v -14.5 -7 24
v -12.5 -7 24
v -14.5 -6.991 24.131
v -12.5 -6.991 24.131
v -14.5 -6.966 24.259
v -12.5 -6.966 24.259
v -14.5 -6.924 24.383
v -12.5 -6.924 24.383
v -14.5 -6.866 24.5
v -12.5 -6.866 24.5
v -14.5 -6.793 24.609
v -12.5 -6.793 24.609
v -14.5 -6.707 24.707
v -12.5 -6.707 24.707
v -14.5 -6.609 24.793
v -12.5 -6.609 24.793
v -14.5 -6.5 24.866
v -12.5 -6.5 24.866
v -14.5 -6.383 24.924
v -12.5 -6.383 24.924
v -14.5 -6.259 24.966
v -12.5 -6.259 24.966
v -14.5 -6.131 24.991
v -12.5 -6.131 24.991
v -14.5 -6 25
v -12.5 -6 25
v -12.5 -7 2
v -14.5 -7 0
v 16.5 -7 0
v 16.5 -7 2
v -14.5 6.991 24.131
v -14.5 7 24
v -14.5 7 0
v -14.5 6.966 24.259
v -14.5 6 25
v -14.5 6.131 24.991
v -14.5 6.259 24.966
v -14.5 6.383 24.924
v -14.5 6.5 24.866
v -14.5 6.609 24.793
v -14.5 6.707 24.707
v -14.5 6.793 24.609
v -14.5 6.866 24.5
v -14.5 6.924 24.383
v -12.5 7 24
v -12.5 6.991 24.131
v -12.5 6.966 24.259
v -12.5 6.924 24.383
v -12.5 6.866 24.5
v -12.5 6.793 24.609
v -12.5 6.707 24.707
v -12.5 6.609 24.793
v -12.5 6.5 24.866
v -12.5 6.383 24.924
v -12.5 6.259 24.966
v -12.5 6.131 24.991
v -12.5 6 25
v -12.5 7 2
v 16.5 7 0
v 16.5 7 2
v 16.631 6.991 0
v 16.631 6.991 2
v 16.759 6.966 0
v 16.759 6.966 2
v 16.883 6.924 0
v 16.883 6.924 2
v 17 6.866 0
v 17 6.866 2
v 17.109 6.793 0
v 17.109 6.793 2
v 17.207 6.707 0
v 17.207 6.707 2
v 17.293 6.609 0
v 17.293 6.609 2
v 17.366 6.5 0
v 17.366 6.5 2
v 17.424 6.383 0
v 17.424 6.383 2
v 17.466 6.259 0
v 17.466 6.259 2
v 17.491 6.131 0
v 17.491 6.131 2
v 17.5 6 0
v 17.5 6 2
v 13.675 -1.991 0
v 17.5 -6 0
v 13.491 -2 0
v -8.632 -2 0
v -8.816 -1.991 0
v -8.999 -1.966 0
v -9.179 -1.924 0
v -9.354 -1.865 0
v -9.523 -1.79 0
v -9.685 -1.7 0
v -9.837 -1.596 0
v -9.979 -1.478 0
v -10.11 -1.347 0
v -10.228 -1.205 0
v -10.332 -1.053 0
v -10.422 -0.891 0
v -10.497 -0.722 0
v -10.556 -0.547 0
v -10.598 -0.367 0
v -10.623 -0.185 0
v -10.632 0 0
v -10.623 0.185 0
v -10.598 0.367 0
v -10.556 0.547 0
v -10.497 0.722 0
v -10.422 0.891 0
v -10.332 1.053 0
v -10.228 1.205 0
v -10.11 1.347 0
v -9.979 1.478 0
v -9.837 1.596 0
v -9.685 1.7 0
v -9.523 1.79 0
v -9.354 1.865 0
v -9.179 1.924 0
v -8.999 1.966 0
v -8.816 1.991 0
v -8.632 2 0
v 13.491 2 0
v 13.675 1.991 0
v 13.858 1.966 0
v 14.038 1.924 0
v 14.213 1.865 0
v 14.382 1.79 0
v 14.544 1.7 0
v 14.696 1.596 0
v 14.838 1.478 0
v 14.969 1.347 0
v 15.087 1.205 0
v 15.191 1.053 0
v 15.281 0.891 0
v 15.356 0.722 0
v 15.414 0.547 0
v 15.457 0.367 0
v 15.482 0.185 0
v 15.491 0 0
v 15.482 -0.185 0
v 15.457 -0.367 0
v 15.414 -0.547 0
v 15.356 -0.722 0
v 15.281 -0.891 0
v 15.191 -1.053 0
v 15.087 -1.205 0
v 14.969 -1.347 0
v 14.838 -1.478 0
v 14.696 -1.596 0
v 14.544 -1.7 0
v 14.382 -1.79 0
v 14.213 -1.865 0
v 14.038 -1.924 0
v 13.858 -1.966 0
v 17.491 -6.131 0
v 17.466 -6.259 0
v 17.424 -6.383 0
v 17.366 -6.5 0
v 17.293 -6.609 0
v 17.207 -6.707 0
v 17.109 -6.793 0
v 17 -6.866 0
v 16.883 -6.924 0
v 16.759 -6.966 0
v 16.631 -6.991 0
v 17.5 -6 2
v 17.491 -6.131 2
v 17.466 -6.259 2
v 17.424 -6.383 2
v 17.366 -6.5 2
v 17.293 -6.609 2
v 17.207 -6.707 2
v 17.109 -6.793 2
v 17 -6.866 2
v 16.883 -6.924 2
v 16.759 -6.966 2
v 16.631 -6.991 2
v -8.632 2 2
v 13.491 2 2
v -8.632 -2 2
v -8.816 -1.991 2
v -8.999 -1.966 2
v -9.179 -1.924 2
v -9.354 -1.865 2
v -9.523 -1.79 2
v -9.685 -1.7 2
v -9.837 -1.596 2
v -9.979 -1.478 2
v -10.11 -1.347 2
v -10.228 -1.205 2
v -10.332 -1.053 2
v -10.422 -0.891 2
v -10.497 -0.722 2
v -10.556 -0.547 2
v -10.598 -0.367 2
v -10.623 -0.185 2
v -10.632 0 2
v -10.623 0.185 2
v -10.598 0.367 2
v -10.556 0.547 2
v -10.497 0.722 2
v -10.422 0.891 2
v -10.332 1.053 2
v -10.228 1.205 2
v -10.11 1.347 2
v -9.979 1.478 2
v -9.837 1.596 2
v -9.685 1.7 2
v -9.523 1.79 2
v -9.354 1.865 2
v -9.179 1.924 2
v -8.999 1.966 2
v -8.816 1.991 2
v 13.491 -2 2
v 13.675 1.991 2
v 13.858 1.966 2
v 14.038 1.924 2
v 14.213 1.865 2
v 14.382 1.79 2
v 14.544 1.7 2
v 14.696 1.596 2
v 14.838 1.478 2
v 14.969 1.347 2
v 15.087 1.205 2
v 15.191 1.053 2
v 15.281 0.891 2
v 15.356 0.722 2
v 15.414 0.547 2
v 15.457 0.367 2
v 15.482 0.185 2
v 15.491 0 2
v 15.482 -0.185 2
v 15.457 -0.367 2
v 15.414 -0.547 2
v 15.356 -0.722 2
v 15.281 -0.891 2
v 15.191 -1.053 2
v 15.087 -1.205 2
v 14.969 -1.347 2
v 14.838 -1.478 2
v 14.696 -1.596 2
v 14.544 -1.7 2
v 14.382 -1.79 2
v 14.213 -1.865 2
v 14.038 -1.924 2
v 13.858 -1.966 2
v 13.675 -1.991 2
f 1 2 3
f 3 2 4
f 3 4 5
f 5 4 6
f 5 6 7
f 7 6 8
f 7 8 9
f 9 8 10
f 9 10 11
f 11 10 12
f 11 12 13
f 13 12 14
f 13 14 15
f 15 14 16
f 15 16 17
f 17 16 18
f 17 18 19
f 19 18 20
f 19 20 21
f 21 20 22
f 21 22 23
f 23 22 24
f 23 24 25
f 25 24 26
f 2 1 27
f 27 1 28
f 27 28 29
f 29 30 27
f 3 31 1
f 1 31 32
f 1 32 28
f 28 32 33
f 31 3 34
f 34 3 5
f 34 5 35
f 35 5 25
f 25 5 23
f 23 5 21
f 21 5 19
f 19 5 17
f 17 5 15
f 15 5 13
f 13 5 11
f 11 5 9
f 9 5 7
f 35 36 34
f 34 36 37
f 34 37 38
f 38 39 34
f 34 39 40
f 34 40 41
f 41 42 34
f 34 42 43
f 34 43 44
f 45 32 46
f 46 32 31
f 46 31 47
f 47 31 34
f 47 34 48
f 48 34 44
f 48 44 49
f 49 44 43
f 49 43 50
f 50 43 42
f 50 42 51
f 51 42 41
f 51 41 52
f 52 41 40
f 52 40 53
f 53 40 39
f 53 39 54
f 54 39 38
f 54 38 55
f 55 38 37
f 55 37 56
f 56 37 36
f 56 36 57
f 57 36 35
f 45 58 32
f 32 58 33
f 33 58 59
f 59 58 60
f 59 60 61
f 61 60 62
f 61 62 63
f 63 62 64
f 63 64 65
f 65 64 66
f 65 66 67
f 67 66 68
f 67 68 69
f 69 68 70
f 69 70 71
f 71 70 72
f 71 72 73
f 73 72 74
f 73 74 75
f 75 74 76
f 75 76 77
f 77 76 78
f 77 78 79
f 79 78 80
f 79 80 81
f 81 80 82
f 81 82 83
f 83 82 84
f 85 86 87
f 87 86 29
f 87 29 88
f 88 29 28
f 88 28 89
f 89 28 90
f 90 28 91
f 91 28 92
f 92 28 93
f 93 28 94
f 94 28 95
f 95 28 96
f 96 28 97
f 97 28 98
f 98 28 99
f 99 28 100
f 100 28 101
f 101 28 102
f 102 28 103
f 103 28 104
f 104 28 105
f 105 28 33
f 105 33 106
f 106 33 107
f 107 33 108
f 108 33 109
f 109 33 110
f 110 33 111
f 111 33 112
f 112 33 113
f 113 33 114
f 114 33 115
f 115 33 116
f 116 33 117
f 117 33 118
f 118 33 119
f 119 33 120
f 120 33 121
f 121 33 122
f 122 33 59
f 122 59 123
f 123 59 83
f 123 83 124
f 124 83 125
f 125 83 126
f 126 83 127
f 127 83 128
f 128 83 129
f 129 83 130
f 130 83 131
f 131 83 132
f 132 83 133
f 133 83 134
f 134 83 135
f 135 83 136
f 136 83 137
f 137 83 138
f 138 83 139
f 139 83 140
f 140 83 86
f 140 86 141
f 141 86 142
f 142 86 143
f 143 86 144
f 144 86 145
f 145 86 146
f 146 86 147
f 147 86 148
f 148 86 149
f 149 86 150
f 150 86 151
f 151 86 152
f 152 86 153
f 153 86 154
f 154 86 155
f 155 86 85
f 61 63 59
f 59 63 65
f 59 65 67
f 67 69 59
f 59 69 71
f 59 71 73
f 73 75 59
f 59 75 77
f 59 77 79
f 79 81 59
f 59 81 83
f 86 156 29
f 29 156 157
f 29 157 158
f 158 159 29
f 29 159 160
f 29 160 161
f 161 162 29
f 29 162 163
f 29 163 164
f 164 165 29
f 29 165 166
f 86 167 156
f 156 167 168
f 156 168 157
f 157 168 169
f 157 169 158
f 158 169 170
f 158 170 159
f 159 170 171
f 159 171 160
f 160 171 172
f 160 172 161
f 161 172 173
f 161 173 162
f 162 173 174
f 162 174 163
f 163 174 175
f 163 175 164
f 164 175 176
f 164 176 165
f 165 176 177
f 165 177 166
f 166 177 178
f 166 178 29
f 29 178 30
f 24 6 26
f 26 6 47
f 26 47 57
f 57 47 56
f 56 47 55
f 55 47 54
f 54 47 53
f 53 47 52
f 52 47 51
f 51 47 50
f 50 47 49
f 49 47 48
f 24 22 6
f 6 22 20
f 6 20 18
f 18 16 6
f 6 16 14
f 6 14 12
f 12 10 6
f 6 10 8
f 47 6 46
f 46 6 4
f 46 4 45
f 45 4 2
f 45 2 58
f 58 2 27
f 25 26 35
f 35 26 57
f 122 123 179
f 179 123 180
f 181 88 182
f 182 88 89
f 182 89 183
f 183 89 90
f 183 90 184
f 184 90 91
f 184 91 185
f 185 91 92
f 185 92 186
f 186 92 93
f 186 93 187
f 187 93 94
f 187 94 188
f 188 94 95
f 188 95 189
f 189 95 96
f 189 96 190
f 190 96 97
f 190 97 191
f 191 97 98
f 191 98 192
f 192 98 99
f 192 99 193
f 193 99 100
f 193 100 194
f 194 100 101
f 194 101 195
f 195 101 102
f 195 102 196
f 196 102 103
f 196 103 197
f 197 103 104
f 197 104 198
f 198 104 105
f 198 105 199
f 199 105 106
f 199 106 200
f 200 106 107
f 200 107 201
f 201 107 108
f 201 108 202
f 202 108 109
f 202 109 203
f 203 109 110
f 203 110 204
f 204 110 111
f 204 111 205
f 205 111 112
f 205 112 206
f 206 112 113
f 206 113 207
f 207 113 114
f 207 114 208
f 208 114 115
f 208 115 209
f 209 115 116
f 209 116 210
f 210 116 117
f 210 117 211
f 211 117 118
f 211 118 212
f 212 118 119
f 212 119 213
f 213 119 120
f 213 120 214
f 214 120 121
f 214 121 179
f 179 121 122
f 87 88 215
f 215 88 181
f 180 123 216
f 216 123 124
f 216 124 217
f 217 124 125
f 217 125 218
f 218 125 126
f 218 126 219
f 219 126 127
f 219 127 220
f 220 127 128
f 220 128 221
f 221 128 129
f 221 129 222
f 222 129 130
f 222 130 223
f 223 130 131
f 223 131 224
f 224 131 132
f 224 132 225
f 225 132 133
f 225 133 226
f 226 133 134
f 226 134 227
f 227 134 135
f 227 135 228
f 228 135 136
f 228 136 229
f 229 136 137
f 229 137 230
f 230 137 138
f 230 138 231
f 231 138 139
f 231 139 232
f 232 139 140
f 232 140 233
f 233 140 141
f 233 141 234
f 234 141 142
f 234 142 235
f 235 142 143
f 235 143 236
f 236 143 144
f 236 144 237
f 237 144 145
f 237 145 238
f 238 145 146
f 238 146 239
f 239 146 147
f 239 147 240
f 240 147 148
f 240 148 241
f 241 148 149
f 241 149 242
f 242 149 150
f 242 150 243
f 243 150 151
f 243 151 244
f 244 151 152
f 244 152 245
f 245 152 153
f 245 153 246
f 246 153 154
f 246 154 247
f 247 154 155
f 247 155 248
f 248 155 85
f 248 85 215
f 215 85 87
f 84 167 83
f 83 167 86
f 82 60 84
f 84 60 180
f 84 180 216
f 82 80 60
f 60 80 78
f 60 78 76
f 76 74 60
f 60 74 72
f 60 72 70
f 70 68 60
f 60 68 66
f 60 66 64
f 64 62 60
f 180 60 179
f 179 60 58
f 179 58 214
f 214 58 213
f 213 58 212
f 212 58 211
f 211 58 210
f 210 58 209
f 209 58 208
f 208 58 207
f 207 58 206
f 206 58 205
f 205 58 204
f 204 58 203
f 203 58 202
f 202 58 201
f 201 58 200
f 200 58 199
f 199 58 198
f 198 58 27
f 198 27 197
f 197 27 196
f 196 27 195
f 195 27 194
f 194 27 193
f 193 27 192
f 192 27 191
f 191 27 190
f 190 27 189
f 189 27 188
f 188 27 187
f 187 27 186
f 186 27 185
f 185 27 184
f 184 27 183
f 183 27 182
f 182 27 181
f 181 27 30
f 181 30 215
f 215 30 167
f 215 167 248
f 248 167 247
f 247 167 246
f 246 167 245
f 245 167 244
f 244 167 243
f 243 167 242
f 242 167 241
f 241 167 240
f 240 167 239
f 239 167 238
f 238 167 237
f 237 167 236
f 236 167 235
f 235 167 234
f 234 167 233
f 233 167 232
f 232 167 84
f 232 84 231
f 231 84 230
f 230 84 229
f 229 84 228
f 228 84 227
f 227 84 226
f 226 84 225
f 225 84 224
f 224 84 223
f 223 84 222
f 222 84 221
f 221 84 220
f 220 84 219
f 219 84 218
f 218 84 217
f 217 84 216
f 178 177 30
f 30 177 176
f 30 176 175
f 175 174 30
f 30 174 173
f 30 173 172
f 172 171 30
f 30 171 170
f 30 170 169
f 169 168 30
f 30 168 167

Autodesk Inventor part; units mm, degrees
ref_plane "YZ Plane" through (0, 0, 0) normal (1, 0, 0) x (0, 1, 0)
ref_plane "XZ Plane" through (0, 0, 0) normal (0, 1, 0) x (-1, 0, 0)
ref_plane "XY Plane" through (0, 0, 0) normal (0, 0, 1) x (1, 0, 0)
sketch "Sketch1" plane through (0, 0, 0) normal (0, 0, 1) x (1, 0, 0)
  line L0 (-14.5, -7) -> (17.5, -7)
  line L1 (17.5, -7) -> (17.5, 7)
  line L2 (17.5, 7) -> (-14.5, 7)
  line L3 (-14.5, 7) -> (-14.5, -7)
  line L4 (-14.5, -7) -> (17.5, 7) construction
  line L5 (17.5, -7) -> (-14.5, 7) construction
  line L6 (-14.5, 7) -> (-12.5, 7)
  line L7 (-12.5, 7) -> (-12.5, -7)
  line L8 (-12.5, -7) -> (-14.5, -7)
  line L9 (-14.5, -7) -> (-14.5, 7)
  line L10 (13.4907, 0) -> (-8.632, 0) construction
  line L11 (13.4907, 2) -> (-8.632, 2)
  line L12 (-8.632, -2) -> (13.4907, -2)
  arc A0 (13.4907, -2) -> (13.4907, 2) centre (13.4907, 0) ccw
  arc A1 (-8.632, 2) -> (-8.632, -2) centre (-8.632, 0) ccw
  point P0 (2.4294, 0)
  dimension "d0" = 32
  dimension "d1" = 14
  dimension "d4" = 2
  dimension "d6" = 4
extrude "Extrusion1" add sketch "Sketch1" along normal blind 2
extrude "Extrusion2" add sketch "Sketch1" along normal blind 25 contours L3 L2 L7 L0
fillet "Fillet1" radius 1 4 edges at (17.5, -7, 1) (17.5, 7, 1) (-13.5, 7, 25) (-13.5, -7, 25)
properties part number "actuator_backbone_fixings_for_measurements"
